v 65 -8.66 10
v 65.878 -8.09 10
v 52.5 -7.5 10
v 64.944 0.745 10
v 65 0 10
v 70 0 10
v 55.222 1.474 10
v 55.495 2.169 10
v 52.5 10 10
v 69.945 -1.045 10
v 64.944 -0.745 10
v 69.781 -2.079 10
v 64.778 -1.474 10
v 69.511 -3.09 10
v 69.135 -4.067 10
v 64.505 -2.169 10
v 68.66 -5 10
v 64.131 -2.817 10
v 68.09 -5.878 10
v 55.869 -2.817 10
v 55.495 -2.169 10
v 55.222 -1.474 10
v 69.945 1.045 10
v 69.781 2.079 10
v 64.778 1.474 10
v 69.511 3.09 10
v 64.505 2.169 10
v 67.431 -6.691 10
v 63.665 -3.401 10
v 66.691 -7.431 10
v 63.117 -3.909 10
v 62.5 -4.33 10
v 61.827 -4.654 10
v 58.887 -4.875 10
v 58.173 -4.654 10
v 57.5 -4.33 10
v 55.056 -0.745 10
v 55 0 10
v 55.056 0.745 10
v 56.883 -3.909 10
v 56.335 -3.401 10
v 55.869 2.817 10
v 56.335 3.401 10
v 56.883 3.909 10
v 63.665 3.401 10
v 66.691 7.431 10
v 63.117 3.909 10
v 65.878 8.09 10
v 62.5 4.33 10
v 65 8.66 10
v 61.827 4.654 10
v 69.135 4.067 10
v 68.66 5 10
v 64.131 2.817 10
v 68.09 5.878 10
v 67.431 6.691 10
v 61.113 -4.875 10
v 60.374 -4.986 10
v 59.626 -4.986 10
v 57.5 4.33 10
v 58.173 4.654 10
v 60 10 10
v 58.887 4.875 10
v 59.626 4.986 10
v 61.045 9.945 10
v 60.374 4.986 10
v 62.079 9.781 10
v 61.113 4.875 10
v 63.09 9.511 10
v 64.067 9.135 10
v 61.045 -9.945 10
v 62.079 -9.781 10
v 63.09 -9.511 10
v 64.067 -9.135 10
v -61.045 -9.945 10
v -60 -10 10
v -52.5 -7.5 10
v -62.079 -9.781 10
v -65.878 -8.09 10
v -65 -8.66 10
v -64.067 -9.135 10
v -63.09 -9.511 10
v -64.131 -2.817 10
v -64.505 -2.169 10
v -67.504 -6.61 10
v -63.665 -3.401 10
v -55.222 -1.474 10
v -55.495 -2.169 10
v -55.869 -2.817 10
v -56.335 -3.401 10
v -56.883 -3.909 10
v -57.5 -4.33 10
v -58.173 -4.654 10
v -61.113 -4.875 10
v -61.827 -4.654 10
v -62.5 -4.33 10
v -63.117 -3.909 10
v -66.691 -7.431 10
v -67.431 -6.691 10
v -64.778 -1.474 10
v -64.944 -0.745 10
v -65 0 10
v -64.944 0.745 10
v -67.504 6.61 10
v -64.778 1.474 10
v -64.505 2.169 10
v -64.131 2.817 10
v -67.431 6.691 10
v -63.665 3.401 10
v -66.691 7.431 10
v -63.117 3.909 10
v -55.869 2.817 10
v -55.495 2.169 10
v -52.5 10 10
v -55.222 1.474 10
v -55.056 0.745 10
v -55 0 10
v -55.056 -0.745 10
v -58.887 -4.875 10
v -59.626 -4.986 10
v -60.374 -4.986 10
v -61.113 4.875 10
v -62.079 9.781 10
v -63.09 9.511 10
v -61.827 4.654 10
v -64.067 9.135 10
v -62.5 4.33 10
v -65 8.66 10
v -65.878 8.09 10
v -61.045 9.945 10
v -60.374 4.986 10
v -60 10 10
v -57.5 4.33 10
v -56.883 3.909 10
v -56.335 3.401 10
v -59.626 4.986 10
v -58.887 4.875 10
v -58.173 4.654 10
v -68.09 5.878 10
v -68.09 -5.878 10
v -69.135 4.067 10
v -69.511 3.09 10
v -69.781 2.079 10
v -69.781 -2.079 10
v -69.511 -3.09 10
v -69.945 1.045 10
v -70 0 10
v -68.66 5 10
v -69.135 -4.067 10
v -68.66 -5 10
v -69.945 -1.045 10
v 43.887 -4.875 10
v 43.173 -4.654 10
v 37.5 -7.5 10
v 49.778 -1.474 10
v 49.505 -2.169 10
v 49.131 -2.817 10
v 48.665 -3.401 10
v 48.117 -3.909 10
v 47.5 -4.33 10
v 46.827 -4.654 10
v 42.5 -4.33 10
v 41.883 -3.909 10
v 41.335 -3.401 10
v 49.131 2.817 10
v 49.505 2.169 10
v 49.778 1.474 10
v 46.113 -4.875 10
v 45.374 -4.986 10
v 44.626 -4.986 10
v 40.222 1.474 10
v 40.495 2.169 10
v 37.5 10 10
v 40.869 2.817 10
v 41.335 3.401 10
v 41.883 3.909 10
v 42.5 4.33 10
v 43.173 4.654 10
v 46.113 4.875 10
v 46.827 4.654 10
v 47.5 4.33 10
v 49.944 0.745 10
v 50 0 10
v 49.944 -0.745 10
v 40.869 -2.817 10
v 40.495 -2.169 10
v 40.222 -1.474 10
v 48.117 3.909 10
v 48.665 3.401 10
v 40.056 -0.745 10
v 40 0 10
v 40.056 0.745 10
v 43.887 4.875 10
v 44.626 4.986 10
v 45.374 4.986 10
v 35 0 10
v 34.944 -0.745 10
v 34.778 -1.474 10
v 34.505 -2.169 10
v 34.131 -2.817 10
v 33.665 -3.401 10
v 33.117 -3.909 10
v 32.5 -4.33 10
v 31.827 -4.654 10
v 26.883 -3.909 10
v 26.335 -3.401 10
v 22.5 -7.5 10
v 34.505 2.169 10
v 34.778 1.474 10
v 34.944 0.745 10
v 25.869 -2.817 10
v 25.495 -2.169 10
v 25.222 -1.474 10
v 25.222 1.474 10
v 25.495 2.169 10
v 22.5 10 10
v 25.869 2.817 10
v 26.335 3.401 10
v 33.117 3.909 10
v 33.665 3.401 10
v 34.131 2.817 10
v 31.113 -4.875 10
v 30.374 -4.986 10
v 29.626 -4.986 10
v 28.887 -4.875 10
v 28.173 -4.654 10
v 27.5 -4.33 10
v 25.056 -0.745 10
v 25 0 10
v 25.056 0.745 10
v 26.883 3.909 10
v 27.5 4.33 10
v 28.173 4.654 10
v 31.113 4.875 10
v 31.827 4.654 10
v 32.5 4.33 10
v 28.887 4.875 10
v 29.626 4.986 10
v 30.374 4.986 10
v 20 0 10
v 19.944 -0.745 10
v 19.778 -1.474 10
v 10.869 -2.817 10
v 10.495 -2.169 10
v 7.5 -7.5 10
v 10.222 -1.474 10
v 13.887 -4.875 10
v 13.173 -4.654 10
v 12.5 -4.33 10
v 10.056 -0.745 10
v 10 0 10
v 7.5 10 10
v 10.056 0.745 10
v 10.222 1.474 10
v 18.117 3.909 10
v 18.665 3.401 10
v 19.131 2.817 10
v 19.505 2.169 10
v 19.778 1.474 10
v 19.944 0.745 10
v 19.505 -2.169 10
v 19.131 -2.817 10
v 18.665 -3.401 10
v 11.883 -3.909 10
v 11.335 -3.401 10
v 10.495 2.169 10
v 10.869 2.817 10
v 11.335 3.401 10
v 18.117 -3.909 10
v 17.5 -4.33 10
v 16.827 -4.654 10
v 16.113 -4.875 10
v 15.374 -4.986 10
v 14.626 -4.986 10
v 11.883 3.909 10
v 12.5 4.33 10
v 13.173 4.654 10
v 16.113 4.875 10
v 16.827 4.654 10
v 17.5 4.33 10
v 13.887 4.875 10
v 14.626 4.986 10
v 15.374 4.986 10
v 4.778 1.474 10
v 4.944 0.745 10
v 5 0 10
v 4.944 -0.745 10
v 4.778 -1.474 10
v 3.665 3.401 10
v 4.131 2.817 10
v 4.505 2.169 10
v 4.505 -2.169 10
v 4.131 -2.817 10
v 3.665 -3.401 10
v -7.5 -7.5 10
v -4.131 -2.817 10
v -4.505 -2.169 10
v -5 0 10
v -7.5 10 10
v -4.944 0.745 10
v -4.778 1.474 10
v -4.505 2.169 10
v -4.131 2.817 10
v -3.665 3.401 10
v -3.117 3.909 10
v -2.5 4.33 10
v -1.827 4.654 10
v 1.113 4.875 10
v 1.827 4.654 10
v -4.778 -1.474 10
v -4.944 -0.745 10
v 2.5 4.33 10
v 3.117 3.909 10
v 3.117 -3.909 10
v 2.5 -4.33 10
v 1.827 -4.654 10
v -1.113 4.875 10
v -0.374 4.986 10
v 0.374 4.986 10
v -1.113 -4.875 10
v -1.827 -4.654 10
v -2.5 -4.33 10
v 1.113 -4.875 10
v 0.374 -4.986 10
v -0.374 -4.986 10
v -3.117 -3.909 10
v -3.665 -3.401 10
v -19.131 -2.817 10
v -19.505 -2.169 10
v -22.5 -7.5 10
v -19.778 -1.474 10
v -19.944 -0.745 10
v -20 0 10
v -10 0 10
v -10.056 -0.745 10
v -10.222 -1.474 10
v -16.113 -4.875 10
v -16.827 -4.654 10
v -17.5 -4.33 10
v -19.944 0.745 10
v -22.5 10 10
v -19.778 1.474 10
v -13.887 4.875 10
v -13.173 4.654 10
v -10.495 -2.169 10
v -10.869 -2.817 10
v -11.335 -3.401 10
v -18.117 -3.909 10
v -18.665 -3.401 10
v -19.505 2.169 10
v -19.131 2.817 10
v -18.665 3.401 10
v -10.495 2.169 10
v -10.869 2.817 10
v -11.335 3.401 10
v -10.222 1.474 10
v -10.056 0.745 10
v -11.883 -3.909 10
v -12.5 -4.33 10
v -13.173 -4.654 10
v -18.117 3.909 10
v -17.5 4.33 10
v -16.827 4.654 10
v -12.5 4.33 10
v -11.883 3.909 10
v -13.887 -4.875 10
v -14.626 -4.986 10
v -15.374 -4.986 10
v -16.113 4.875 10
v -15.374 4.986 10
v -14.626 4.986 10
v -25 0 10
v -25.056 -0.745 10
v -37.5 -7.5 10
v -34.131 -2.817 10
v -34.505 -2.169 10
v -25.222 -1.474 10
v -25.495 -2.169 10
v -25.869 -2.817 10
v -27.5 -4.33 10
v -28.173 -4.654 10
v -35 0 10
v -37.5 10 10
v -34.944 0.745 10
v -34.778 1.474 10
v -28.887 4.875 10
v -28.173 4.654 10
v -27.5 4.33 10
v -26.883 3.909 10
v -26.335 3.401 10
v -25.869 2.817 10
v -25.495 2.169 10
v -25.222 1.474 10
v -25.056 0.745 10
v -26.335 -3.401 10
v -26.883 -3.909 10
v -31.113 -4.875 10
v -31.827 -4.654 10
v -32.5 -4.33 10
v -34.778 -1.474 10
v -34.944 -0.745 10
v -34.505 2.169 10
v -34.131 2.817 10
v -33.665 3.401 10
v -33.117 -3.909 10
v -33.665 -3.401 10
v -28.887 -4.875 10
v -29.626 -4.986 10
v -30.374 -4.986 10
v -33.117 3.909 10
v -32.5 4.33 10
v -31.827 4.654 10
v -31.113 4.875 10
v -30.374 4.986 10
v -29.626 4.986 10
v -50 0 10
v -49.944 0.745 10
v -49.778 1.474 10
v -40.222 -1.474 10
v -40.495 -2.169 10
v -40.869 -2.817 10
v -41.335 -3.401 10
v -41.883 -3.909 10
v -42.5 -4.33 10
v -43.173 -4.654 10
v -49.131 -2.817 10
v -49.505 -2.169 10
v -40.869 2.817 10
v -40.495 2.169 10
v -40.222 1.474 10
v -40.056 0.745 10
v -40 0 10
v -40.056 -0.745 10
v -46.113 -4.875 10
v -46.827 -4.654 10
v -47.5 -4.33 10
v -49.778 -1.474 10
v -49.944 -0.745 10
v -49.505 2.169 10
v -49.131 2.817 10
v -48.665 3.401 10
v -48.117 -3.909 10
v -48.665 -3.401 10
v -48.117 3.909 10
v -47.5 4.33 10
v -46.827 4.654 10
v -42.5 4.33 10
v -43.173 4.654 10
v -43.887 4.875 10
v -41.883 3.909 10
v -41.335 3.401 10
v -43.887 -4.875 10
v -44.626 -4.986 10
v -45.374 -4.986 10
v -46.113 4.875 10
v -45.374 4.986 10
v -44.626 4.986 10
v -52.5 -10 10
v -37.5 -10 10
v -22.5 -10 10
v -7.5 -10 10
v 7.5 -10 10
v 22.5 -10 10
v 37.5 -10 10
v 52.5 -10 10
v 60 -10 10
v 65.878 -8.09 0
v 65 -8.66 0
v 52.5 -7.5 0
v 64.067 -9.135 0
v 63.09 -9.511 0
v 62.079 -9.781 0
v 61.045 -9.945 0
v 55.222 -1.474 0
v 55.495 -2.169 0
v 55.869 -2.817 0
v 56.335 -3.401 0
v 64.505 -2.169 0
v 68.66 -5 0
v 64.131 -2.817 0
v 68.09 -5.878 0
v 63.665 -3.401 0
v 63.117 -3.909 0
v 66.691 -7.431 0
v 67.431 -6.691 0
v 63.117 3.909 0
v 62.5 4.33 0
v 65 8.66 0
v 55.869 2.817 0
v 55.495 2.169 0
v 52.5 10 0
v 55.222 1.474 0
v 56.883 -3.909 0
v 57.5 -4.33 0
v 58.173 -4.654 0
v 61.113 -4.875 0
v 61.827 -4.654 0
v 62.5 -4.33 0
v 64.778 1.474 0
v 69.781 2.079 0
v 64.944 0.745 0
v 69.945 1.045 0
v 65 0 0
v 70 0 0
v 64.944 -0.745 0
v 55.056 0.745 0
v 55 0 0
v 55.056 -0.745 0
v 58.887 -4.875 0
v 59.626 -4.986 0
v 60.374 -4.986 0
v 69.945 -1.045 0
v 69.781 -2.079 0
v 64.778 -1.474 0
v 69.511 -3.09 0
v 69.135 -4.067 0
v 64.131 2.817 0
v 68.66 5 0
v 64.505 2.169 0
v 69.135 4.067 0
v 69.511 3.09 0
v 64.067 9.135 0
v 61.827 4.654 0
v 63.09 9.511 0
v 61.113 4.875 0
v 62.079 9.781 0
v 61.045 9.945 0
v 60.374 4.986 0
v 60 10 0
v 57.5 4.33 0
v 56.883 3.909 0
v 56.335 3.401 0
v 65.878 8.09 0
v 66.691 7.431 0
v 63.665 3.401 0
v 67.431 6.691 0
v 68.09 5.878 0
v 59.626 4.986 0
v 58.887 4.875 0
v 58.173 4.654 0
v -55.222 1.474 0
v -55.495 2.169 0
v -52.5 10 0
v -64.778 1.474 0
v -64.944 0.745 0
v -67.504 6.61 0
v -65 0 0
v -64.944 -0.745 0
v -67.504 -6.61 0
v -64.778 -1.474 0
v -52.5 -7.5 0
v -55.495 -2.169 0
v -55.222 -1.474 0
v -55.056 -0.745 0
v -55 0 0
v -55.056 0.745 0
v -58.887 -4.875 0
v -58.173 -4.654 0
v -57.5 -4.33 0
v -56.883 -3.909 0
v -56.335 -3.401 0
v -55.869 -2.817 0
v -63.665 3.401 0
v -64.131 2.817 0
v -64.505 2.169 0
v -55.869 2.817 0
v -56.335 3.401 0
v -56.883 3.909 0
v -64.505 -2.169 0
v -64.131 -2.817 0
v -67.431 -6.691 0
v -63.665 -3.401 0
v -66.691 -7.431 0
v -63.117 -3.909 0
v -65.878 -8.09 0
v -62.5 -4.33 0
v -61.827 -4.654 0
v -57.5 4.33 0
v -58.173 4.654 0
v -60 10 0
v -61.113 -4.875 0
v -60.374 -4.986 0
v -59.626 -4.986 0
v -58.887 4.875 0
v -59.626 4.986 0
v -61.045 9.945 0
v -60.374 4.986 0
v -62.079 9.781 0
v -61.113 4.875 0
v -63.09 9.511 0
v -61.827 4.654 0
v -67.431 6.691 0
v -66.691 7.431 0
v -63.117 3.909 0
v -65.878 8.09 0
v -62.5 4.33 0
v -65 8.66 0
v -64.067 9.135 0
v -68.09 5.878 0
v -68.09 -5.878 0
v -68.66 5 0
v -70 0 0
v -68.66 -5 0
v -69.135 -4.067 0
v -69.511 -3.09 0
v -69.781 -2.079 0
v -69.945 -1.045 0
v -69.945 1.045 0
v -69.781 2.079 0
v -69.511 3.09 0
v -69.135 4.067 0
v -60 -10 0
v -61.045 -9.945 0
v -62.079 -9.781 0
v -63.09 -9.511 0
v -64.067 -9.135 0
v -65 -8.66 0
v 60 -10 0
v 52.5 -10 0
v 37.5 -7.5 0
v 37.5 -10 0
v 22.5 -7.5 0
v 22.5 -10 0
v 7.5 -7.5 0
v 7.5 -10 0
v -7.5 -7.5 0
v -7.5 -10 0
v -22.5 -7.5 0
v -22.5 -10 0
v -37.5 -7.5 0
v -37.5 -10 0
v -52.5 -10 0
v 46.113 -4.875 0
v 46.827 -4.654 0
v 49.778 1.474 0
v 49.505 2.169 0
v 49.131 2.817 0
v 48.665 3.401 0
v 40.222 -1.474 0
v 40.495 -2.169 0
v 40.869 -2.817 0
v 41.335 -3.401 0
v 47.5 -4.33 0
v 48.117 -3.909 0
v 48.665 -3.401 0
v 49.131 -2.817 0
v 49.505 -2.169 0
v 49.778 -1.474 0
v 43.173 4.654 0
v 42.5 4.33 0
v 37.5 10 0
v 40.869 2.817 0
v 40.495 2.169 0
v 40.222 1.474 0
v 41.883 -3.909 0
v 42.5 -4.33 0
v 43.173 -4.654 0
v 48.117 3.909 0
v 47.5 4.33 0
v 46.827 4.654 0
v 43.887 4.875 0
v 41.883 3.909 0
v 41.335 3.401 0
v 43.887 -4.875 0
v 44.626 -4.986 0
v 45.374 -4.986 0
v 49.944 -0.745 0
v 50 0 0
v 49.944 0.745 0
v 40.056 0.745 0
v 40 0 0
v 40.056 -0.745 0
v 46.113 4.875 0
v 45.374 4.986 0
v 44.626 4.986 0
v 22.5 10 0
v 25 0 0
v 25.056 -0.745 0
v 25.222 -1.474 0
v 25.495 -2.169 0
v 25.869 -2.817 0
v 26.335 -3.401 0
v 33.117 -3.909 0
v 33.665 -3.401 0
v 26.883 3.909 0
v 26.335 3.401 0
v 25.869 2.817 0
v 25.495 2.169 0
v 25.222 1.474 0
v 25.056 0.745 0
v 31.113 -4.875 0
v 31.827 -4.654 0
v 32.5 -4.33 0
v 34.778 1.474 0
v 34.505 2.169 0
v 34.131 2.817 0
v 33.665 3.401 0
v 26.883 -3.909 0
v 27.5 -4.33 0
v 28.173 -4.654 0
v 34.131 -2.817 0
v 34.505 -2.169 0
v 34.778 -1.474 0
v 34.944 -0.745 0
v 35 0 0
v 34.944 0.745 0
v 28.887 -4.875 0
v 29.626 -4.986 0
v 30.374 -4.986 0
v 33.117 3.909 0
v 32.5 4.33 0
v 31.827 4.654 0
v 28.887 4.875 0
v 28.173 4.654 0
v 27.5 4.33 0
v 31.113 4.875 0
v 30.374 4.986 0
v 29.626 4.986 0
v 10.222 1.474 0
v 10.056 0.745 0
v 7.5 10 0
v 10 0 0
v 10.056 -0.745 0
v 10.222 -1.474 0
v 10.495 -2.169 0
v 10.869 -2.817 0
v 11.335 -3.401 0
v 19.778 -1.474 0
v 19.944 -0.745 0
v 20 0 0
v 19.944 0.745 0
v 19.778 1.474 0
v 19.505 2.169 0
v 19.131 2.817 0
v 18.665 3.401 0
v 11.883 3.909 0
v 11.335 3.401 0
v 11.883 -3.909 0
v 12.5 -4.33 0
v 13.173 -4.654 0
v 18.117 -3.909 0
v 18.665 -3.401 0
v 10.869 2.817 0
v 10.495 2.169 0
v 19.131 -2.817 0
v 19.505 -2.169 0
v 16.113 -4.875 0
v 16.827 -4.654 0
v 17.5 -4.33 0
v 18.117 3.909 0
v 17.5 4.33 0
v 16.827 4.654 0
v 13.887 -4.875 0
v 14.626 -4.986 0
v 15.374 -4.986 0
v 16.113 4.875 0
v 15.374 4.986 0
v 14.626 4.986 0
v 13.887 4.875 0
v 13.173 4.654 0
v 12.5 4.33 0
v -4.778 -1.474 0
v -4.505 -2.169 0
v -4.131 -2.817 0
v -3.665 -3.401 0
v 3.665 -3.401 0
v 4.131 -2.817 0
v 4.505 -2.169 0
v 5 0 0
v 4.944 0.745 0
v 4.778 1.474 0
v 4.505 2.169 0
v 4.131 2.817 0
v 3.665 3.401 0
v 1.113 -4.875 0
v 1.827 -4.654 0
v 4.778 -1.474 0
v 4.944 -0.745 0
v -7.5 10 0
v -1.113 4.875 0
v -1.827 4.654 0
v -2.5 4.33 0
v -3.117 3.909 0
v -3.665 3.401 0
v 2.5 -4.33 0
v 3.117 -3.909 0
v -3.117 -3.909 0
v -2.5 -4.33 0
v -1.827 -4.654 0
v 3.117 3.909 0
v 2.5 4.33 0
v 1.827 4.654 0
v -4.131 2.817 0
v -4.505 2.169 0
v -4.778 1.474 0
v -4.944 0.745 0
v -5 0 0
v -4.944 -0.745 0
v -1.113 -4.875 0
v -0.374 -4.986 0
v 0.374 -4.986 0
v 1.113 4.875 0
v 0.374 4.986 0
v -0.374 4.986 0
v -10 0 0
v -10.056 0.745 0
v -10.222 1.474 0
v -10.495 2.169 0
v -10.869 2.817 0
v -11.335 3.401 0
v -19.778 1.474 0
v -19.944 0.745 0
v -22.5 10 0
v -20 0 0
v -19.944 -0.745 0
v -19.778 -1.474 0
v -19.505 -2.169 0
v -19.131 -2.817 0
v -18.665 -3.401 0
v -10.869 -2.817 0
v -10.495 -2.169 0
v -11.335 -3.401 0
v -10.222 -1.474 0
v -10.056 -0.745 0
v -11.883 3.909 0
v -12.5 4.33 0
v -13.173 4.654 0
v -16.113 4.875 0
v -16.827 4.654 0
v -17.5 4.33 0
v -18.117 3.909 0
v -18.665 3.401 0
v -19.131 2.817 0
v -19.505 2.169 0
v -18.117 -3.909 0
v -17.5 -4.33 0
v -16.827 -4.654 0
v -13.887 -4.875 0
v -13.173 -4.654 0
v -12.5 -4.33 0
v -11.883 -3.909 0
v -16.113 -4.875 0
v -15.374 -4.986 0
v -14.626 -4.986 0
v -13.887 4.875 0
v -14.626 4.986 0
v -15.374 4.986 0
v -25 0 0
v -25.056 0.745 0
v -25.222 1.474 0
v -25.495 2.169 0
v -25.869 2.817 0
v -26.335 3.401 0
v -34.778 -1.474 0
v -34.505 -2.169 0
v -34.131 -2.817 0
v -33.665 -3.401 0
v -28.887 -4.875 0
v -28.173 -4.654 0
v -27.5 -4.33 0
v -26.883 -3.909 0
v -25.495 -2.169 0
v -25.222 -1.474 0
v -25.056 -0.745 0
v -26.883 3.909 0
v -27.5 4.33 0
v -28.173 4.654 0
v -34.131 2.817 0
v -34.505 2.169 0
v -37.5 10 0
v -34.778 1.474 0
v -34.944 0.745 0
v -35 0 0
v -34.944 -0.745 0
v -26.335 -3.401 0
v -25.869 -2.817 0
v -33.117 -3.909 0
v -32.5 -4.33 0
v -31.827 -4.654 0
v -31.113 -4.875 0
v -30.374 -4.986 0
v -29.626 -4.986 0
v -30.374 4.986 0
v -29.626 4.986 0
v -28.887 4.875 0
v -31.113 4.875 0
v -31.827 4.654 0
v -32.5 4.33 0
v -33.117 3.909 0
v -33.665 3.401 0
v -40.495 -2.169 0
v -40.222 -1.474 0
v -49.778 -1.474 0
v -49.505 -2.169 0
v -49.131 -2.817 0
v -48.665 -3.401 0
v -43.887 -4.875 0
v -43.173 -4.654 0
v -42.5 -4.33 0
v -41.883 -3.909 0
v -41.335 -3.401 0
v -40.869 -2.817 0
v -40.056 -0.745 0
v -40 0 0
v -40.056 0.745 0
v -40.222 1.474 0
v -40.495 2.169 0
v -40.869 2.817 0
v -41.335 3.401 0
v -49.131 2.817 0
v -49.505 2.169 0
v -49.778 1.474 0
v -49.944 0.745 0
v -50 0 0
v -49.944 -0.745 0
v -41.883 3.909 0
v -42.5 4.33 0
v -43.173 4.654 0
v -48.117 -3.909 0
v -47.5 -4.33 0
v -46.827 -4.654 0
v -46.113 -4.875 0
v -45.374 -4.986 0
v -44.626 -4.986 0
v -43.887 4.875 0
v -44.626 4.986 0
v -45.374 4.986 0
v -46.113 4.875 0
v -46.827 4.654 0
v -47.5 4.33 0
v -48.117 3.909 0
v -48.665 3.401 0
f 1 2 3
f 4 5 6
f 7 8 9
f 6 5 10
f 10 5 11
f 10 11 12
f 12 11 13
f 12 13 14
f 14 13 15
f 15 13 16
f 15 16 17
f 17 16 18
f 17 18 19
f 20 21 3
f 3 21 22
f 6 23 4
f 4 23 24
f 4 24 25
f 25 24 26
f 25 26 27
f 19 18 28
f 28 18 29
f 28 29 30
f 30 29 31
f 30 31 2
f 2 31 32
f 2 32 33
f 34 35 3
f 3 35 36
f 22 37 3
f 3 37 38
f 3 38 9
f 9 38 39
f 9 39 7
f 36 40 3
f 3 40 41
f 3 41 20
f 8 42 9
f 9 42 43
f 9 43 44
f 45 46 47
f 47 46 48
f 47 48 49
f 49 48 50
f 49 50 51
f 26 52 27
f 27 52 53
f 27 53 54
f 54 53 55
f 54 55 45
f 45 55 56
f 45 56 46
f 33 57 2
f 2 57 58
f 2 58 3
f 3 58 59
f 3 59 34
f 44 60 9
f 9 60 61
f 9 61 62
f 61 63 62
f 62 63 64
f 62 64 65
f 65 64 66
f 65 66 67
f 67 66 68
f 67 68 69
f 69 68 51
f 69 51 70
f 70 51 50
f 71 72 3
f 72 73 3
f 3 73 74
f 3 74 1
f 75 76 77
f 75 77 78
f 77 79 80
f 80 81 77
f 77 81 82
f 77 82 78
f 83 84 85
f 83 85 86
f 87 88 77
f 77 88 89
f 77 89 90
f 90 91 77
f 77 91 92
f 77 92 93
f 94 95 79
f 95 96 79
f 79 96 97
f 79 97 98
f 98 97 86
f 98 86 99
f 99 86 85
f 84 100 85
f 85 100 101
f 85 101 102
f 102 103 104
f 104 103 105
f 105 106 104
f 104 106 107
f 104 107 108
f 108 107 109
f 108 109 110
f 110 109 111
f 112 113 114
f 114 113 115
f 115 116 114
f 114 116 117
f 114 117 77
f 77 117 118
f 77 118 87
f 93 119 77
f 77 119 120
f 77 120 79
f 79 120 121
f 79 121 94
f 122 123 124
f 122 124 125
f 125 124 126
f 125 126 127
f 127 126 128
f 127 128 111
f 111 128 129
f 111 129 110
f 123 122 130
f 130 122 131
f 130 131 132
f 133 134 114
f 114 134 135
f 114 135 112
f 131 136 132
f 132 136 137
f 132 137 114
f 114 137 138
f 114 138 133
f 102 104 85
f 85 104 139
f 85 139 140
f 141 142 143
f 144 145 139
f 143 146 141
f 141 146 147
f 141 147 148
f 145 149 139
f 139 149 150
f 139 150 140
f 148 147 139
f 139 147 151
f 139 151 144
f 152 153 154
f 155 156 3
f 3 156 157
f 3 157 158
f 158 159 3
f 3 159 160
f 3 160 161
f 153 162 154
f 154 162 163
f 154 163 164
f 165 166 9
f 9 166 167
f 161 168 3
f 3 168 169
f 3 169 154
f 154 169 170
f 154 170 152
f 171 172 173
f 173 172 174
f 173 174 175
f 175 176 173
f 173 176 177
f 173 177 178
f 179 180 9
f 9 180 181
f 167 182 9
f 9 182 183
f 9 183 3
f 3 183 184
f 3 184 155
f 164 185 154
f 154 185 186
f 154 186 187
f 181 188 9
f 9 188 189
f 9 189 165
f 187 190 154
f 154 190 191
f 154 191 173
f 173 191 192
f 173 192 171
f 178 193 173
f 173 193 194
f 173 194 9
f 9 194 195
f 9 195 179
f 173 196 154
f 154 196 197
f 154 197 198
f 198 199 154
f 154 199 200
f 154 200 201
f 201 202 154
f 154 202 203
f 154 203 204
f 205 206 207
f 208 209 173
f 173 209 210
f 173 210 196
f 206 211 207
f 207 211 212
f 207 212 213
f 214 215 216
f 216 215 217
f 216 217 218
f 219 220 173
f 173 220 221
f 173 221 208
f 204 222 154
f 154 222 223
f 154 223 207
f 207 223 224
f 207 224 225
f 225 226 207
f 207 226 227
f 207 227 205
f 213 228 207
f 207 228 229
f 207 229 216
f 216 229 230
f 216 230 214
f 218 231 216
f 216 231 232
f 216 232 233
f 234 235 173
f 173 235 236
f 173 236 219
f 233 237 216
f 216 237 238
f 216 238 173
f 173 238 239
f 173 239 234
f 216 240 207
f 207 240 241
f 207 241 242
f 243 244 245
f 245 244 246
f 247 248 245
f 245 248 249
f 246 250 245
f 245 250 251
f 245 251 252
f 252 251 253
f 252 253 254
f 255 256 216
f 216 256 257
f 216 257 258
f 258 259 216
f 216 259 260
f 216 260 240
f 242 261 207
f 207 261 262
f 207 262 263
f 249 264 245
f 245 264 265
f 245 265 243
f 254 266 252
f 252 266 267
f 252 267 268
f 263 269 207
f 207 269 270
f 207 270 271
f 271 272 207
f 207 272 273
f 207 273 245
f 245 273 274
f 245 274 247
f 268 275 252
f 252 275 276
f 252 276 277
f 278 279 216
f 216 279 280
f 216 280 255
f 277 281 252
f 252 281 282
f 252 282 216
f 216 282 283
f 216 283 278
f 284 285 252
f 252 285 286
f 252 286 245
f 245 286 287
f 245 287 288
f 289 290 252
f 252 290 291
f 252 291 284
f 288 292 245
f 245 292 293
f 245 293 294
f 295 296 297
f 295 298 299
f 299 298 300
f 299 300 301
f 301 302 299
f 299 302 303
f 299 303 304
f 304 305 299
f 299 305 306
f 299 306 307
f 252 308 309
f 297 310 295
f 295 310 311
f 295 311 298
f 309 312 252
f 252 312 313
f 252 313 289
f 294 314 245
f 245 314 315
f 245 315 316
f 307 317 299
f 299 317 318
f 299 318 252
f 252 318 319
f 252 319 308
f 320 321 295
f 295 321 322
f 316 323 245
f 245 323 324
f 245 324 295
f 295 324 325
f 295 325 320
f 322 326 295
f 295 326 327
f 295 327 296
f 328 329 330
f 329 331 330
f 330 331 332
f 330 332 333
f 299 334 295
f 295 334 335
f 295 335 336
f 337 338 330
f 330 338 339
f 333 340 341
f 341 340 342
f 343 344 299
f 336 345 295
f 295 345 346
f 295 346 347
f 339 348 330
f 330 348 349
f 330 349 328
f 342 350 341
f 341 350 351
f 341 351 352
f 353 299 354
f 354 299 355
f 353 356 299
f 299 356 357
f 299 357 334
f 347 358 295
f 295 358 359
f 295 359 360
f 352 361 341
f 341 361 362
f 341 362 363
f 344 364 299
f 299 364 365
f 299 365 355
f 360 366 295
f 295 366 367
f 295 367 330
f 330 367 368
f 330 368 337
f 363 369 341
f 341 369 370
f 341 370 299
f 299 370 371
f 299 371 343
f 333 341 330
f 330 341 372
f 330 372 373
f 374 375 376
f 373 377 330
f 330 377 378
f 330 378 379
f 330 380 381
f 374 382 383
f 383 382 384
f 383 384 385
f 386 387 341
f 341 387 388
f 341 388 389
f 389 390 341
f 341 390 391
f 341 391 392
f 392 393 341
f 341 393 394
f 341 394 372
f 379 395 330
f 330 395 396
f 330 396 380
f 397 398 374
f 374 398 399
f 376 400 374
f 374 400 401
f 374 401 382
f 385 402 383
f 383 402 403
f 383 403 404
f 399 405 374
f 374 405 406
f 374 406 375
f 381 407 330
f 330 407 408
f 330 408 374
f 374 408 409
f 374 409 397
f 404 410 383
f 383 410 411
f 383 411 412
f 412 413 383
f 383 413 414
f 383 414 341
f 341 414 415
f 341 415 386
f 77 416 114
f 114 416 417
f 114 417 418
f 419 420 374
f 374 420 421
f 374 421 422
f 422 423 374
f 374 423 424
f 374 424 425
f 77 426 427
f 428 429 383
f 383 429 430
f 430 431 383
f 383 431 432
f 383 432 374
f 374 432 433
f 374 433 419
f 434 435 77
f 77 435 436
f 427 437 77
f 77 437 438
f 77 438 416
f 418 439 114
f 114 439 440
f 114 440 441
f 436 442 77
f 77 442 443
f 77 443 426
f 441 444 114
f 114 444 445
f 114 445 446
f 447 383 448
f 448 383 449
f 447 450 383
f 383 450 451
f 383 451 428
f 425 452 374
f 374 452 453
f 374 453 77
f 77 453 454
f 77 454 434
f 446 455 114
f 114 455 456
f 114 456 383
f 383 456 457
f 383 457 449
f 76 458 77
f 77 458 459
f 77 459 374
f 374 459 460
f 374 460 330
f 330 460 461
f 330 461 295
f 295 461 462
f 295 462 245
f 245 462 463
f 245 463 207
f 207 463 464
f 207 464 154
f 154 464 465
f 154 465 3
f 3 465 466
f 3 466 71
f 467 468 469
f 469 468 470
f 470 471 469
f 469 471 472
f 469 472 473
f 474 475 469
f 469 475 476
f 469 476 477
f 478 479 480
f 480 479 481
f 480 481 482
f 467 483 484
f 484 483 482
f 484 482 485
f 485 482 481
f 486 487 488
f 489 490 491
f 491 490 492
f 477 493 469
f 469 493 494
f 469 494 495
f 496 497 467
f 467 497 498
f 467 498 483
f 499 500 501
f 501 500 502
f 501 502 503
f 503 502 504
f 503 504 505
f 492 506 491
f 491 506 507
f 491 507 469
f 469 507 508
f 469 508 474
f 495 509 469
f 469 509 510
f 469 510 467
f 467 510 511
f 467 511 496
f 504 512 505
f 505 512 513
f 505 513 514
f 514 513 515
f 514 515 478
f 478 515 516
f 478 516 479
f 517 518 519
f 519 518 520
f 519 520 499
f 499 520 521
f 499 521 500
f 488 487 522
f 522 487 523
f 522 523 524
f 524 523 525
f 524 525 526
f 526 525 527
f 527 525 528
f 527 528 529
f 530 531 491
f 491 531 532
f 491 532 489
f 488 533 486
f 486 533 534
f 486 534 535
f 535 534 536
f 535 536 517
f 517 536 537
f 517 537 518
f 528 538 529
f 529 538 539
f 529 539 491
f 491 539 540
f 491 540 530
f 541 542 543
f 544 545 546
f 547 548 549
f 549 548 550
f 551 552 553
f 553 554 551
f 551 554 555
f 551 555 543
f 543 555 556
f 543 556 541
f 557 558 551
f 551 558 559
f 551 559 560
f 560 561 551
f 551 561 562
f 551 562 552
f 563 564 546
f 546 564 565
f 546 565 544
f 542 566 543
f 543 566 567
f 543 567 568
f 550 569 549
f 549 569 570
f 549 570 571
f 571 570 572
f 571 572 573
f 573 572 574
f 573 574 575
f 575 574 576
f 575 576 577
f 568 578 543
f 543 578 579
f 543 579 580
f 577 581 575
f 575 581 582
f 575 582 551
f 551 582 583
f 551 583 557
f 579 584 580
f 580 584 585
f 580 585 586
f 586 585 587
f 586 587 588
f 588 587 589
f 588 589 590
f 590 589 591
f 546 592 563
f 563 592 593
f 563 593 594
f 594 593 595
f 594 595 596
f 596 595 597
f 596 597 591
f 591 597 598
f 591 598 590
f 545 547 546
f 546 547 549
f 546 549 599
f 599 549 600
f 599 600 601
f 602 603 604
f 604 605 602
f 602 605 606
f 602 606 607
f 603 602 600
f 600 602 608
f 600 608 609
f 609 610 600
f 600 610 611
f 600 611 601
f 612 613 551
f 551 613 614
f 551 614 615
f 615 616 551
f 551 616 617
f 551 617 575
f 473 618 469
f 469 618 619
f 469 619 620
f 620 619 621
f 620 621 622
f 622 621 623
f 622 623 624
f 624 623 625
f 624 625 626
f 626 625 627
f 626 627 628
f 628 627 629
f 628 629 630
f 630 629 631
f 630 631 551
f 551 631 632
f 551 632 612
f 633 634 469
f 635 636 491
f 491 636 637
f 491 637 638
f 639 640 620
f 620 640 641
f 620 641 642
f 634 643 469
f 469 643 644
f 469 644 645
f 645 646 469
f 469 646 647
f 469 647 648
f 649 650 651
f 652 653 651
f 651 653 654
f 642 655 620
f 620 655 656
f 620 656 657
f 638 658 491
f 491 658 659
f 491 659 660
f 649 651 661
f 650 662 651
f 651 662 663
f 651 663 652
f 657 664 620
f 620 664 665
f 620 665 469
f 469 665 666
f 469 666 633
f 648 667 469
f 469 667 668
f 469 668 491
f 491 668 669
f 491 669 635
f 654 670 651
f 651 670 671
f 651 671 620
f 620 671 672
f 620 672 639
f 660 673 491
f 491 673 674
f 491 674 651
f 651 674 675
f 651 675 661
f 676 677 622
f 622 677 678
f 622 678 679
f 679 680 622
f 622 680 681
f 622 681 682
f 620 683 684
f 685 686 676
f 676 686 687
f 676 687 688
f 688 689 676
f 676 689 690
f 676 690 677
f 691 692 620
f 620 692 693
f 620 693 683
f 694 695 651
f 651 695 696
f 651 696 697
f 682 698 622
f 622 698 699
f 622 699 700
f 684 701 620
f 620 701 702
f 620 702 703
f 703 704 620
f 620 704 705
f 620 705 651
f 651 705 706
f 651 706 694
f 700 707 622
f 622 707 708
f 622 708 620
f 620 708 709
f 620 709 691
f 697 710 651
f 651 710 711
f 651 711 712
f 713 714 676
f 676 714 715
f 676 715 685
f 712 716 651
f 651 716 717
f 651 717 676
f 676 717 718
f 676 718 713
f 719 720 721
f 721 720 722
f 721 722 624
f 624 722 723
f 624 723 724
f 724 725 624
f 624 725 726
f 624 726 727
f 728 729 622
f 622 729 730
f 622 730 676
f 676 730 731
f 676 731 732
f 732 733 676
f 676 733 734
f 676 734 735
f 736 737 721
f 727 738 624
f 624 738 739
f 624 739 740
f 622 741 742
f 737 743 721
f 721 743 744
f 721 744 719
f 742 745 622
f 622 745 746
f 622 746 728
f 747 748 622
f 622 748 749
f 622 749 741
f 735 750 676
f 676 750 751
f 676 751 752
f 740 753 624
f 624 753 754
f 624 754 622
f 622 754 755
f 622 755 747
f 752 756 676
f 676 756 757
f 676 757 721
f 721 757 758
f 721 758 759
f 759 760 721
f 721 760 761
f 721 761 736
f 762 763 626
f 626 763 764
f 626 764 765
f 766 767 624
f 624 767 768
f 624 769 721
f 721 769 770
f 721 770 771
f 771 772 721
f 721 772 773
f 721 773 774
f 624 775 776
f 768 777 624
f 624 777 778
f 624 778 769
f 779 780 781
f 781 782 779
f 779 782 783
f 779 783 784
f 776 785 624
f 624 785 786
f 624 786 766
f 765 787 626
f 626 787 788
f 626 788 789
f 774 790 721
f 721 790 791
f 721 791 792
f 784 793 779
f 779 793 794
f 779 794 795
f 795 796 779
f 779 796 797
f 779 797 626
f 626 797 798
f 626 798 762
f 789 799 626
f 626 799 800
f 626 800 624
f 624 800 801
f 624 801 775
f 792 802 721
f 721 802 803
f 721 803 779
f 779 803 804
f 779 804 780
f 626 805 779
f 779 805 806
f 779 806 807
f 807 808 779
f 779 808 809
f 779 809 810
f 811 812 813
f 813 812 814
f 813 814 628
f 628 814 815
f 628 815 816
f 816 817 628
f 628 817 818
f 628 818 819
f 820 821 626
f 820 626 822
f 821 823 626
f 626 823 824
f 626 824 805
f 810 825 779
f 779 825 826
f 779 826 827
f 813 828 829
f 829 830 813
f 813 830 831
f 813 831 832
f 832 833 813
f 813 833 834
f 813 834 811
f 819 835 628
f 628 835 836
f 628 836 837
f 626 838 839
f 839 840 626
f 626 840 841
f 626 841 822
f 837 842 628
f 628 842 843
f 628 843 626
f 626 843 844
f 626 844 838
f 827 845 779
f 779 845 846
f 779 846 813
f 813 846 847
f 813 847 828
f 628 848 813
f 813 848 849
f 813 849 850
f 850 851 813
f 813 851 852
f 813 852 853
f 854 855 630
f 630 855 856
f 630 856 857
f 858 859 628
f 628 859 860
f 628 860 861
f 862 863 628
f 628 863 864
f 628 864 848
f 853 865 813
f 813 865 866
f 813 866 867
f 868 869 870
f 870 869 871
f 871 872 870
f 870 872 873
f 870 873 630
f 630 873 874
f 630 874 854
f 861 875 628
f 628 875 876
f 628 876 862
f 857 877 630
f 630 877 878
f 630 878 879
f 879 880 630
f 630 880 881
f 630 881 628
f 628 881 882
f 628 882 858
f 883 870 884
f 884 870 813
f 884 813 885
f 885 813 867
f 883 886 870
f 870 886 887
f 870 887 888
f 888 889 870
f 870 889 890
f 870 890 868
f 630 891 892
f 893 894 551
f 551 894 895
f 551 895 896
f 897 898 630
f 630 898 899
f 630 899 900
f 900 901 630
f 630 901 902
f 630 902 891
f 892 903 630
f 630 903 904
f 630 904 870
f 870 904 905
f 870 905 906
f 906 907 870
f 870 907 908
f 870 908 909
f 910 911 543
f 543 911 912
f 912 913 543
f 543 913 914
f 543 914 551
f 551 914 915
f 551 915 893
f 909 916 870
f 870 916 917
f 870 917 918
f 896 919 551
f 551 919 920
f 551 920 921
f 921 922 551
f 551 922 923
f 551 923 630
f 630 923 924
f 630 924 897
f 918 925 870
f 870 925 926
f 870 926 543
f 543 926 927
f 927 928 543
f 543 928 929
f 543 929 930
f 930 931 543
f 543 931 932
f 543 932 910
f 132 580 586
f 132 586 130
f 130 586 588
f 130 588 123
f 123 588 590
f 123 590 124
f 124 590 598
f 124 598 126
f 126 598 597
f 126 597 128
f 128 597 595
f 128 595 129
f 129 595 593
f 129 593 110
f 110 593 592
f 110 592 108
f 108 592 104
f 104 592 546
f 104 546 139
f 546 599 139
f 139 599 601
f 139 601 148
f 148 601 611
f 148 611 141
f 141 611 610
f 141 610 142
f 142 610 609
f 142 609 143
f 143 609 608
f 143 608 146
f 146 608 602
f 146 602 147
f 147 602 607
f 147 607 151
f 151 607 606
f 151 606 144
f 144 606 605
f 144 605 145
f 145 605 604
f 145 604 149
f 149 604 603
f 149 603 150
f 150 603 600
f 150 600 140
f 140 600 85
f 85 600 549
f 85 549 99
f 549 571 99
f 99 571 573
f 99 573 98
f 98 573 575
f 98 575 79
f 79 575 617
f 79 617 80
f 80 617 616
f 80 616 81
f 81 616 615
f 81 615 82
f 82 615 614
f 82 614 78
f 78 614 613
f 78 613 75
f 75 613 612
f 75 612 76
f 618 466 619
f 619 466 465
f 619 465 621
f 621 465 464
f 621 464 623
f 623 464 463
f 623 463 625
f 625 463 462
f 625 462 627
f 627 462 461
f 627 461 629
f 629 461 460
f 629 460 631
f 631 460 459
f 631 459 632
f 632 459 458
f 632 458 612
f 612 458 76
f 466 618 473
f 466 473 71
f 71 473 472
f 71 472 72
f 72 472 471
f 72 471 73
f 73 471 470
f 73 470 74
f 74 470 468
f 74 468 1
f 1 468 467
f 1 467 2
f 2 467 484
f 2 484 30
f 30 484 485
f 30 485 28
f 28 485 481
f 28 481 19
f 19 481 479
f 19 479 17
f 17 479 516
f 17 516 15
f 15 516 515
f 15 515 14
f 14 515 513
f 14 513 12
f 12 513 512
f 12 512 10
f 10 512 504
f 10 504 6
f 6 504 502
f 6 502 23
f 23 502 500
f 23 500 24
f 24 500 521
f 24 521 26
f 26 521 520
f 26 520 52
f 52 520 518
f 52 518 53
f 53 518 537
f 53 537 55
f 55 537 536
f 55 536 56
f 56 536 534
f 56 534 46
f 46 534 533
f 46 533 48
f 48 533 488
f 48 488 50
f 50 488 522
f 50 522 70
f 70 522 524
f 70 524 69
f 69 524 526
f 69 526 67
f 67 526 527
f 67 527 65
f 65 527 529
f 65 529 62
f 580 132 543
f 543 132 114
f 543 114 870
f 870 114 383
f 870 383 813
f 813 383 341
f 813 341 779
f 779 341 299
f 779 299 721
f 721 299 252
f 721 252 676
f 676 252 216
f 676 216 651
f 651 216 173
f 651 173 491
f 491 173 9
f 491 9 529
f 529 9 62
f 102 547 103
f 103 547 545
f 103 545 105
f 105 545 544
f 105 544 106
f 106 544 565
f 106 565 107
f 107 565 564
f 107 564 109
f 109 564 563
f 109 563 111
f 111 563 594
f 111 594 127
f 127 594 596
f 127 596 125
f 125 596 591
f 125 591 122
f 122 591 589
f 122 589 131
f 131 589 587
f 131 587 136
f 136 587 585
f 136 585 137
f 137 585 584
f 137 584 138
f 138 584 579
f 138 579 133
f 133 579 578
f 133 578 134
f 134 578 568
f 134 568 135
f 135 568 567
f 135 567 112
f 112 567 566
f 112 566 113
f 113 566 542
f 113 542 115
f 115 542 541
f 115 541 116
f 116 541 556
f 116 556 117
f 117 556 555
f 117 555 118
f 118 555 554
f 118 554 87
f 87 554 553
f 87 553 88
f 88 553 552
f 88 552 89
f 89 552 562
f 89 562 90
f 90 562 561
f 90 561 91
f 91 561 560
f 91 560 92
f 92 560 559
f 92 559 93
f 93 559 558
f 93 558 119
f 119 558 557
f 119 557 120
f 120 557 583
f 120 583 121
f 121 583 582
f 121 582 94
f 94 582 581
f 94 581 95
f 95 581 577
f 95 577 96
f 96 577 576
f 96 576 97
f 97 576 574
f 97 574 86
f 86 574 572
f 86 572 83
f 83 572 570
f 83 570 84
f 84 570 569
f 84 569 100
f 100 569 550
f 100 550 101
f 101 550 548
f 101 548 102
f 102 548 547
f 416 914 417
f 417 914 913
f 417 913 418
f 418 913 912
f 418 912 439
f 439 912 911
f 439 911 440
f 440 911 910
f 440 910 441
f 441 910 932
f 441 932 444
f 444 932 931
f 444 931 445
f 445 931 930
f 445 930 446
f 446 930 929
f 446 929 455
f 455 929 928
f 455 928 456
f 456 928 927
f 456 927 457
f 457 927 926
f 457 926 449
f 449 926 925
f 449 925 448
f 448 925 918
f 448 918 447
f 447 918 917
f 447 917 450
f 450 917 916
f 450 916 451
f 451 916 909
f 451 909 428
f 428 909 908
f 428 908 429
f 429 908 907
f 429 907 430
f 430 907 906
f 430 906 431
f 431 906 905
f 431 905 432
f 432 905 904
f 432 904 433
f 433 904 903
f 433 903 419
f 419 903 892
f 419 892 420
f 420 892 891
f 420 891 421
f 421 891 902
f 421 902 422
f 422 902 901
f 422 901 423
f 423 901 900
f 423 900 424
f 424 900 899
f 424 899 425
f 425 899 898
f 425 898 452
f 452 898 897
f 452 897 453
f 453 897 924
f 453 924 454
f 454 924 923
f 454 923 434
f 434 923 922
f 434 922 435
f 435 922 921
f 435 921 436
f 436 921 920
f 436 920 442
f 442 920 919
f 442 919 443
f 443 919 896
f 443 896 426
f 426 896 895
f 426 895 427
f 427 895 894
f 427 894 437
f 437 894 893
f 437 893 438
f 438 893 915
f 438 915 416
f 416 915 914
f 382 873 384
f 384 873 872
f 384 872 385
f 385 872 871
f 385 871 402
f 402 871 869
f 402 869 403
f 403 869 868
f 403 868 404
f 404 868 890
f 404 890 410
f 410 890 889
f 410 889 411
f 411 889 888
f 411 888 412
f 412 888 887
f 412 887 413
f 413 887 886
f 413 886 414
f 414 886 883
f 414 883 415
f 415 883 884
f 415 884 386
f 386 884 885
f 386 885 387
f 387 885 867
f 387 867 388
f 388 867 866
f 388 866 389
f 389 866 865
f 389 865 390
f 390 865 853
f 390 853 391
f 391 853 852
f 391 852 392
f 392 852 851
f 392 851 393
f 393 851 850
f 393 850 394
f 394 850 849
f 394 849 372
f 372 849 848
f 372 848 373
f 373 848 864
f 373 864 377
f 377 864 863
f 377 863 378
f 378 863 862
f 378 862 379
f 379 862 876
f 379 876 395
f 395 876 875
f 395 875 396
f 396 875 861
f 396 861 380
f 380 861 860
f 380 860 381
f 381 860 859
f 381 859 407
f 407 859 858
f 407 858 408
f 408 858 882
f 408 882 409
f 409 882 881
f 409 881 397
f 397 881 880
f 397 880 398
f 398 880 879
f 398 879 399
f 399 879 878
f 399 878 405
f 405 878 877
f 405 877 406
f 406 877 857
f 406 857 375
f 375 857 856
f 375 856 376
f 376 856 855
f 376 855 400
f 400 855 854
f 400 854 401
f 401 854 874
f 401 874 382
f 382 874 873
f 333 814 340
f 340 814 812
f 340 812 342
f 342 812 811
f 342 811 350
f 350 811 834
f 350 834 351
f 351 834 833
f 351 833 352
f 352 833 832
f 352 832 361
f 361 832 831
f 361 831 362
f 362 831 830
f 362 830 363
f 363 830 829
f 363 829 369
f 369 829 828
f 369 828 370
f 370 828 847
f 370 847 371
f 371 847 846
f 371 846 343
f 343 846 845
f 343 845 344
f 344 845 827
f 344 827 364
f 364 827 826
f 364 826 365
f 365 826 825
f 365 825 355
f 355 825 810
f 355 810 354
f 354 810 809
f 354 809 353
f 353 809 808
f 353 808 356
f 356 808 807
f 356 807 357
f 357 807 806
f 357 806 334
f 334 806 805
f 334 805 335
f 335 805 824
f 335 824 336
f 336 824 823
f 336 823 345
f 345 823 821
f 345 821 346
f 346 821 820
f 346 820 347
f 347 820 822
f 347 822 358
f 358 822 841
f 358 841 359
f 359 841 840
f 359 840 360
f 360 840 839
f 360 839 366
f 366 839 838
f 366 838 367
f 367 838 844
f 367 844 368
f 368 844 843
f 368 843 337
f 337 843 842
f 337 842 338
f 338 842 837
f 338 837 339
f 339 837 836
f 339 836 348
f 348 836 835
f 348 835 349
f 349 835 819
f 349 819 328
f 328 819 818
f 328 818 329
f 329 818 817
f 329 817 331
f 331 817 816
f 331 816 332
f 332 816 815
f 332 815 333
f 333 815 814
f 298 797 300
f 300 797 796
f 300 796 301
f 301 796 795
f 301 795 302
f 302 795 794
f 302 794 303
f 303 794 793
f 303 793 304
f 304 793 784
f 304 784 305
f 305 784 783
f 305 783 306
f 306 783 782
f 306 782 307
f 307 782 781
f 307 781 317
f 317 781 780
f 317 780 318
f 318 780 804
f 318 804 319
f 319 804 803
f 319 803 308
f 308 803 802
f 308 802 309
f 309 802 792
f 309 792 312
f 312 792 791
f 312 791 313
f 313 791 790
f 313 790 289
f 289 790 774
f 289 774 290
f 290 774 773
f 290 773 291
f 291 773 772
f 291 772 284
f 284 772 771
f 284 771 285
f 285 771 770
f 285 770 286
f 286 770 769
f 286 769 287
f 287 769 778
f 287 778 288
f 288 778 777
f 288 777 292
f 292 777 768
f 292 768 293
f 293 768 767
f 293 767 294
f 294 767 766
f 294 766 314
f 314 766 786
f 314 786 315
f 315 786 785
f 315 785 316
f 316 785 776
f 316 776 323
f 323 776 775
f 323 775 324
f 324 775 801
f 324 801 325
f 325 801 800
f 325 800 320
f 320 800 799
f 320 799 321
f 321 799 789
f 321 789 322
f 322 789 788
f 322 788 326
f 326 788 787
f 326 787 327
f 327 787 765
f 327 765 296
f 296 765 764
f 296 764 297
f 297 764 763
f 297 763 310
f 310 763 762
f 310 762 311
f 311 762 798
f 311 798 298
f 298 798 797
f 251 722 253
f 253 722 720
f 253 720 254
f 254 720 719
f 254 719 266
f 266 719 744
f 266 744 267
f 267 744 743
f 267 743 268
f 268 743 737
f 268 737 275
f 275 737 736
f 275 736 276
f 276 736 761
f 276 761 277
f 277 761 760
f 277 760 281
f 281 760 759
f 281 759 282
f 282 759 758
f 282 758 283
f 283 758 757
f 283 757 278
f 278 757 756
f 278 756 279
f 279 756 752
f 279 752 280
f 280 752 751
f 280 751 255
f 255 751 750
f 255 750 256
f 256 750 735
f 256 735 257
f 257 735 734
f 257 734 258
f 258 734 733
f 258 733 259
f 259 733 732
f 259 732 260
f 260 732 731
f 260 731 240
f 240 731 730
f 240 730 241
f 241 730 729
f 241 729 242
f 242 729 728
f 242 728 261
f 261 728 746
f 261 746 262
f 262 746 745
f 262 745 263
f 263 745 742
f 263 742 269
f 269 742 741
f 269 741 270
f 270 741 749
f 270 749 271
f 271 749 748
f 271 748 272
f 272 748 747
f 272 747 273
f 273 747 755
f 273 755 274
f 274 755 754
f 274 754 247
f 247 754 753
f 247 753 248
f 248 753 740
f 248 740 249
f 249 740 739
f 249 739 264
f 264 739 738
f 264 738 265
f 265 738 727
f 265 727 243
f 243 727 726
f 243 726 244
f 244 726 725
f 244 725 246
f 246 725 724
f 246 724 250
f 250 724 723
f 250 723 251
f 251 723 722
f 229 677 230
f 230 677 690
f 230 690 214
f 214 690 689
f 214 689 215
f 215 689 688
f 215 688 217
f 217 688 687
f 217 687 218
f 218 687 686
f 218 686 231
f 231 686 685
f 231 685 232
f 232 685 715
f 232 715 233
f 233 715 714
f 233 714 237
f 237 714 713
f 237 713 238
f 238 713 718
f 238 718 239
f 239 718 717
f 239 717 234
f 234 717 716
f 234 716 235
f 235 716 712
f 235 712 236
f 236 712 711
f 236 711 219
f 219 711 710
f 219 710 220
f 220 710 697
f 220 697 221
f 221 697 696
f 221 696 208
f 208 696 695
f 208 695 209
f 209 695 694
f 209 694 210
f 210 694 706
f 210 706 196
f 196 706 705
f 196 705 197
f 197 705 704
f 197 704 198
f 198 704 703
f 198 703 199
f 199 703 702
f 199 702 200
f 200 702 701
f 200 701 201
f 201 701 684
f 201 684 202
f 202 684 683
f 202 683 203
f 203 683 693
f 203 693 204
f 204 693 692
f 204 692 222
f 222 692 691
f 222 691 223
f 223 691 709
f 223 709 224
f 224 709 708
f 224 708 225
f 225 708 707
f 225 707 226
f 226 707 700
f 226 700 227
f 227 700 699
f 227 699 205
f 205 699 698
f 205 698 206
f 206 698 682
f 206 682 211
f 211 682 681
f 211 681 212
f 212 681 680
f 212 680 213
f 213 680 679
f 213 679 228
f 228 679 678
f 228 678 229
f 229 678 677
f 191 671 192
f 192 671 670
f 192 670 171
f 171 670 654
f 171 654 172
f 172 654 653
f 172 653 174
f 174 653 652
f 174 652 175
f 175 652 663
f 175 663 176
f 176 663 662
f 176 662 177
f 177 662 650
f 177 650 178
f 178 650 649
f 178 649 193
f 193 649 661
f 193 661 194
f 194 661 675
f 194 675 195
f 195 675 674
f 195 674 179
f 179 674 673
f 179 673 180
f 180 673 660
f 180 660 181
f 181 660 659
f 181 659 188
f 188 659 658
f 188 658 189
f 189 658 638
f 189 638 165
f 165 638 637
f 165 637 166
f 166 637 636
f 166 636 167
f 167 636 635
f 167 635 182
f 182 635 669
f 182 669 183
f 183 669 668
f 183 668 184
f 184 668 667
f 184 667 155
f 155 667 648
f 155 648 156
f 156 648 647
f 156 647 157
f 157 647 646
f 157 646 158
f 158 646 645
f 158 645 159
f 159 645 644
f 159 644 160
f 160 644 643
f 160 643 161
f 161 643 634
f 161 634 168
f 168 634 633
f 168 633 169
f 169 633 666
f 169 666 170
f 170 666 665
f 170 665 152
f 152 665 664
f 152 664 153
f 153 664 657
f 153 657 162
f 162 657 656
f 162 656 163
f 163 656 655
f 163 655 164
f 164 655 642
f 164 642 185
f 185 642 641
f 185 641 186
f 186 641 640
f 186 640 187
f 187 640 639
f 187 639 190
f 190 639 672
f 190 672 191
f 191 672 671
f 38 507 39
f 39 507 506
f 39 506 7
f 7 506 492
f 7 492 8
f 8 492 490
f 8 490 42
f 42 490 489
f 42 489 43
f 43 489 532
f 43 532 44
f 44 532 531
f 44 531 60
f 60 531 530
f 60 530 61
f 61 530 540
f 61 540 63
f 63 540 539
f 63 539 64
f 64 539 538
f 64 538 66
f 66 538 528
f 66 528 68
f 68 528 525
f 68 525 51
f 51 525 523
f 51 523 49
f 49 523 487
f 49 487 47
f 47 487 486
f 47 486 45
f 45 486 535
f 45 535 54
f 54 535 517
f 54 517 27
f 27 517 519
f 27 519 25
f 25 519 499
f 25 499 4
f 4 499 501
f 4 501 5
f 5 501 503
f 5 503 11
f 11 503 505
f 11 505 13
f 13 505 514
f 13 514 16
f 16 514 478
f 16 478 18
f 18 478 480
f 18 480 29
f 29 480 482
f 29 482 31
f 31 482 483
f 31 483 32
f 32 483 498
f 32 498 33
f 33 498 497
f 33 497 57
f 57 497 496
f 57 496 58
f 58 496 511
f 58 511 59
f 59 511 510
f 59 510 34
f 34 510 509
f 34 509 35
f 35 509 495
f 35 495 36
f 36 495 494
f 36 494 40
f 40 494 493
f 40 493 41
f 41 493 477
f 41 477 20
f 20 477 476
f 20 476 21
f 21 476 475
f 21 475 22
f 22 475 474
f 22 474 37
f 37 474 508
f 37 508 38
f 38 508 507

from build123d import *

# Parameters (mm, degrees)
SKETCH1_R           = 5
BOSS_EXTRUDE1_DEPTH = 10


with BuildPart() as part:
    # Sketch1 → Boss-Extrude1 (new body)
    with BuildSketch(Plane.XY):
        with BuildLine():
            Line((-60, 10), (60, 10))
            ThreePointArc((60, 10), (70, 0), (60, -10))
            Line((60, -10), (-60, -10))
            ThreePointArc((-60, -10), (-70, 0), (-60, 10))
        make_face()
        with Locations((-60, 0)):
            Circle(SKETCH1_R, mode=Mode.SUBTRACT)
        with Locations((-45, 0)):
            Circle(SKETCH1_R, mode=Mode.SUBTRACT)
        with Locations((-30, 0)):
            Circle(SKETCH1_R, mode=Mode.SUBTRACT)
        with Locations((-15, 0)):
            Circle(SKETCH1_R, mode=Mode.SUBTRACT)
        Circle(SKETCH1_R, mode=Mode.SUBTRACT)
        with Locations((15, 0)):
            Circle(SKETCH1_R, mode=Mode.SUBTRACT)
        with Locations((30, 0)):
            Circle(SKETCH1_R, mode=Mode.SUBTRACT)
        with Locations((45, 0)):
            Circle(SKETCH1_R, mode=Mode.SUBTRACT)
        with Locations((60, 0)):
            Circle(SKETCH1_R, mode=Mode.SUBTRACT)
    extrude(amount=BOSS_EXTRUDE1_DEPTH)


solid = part.part
